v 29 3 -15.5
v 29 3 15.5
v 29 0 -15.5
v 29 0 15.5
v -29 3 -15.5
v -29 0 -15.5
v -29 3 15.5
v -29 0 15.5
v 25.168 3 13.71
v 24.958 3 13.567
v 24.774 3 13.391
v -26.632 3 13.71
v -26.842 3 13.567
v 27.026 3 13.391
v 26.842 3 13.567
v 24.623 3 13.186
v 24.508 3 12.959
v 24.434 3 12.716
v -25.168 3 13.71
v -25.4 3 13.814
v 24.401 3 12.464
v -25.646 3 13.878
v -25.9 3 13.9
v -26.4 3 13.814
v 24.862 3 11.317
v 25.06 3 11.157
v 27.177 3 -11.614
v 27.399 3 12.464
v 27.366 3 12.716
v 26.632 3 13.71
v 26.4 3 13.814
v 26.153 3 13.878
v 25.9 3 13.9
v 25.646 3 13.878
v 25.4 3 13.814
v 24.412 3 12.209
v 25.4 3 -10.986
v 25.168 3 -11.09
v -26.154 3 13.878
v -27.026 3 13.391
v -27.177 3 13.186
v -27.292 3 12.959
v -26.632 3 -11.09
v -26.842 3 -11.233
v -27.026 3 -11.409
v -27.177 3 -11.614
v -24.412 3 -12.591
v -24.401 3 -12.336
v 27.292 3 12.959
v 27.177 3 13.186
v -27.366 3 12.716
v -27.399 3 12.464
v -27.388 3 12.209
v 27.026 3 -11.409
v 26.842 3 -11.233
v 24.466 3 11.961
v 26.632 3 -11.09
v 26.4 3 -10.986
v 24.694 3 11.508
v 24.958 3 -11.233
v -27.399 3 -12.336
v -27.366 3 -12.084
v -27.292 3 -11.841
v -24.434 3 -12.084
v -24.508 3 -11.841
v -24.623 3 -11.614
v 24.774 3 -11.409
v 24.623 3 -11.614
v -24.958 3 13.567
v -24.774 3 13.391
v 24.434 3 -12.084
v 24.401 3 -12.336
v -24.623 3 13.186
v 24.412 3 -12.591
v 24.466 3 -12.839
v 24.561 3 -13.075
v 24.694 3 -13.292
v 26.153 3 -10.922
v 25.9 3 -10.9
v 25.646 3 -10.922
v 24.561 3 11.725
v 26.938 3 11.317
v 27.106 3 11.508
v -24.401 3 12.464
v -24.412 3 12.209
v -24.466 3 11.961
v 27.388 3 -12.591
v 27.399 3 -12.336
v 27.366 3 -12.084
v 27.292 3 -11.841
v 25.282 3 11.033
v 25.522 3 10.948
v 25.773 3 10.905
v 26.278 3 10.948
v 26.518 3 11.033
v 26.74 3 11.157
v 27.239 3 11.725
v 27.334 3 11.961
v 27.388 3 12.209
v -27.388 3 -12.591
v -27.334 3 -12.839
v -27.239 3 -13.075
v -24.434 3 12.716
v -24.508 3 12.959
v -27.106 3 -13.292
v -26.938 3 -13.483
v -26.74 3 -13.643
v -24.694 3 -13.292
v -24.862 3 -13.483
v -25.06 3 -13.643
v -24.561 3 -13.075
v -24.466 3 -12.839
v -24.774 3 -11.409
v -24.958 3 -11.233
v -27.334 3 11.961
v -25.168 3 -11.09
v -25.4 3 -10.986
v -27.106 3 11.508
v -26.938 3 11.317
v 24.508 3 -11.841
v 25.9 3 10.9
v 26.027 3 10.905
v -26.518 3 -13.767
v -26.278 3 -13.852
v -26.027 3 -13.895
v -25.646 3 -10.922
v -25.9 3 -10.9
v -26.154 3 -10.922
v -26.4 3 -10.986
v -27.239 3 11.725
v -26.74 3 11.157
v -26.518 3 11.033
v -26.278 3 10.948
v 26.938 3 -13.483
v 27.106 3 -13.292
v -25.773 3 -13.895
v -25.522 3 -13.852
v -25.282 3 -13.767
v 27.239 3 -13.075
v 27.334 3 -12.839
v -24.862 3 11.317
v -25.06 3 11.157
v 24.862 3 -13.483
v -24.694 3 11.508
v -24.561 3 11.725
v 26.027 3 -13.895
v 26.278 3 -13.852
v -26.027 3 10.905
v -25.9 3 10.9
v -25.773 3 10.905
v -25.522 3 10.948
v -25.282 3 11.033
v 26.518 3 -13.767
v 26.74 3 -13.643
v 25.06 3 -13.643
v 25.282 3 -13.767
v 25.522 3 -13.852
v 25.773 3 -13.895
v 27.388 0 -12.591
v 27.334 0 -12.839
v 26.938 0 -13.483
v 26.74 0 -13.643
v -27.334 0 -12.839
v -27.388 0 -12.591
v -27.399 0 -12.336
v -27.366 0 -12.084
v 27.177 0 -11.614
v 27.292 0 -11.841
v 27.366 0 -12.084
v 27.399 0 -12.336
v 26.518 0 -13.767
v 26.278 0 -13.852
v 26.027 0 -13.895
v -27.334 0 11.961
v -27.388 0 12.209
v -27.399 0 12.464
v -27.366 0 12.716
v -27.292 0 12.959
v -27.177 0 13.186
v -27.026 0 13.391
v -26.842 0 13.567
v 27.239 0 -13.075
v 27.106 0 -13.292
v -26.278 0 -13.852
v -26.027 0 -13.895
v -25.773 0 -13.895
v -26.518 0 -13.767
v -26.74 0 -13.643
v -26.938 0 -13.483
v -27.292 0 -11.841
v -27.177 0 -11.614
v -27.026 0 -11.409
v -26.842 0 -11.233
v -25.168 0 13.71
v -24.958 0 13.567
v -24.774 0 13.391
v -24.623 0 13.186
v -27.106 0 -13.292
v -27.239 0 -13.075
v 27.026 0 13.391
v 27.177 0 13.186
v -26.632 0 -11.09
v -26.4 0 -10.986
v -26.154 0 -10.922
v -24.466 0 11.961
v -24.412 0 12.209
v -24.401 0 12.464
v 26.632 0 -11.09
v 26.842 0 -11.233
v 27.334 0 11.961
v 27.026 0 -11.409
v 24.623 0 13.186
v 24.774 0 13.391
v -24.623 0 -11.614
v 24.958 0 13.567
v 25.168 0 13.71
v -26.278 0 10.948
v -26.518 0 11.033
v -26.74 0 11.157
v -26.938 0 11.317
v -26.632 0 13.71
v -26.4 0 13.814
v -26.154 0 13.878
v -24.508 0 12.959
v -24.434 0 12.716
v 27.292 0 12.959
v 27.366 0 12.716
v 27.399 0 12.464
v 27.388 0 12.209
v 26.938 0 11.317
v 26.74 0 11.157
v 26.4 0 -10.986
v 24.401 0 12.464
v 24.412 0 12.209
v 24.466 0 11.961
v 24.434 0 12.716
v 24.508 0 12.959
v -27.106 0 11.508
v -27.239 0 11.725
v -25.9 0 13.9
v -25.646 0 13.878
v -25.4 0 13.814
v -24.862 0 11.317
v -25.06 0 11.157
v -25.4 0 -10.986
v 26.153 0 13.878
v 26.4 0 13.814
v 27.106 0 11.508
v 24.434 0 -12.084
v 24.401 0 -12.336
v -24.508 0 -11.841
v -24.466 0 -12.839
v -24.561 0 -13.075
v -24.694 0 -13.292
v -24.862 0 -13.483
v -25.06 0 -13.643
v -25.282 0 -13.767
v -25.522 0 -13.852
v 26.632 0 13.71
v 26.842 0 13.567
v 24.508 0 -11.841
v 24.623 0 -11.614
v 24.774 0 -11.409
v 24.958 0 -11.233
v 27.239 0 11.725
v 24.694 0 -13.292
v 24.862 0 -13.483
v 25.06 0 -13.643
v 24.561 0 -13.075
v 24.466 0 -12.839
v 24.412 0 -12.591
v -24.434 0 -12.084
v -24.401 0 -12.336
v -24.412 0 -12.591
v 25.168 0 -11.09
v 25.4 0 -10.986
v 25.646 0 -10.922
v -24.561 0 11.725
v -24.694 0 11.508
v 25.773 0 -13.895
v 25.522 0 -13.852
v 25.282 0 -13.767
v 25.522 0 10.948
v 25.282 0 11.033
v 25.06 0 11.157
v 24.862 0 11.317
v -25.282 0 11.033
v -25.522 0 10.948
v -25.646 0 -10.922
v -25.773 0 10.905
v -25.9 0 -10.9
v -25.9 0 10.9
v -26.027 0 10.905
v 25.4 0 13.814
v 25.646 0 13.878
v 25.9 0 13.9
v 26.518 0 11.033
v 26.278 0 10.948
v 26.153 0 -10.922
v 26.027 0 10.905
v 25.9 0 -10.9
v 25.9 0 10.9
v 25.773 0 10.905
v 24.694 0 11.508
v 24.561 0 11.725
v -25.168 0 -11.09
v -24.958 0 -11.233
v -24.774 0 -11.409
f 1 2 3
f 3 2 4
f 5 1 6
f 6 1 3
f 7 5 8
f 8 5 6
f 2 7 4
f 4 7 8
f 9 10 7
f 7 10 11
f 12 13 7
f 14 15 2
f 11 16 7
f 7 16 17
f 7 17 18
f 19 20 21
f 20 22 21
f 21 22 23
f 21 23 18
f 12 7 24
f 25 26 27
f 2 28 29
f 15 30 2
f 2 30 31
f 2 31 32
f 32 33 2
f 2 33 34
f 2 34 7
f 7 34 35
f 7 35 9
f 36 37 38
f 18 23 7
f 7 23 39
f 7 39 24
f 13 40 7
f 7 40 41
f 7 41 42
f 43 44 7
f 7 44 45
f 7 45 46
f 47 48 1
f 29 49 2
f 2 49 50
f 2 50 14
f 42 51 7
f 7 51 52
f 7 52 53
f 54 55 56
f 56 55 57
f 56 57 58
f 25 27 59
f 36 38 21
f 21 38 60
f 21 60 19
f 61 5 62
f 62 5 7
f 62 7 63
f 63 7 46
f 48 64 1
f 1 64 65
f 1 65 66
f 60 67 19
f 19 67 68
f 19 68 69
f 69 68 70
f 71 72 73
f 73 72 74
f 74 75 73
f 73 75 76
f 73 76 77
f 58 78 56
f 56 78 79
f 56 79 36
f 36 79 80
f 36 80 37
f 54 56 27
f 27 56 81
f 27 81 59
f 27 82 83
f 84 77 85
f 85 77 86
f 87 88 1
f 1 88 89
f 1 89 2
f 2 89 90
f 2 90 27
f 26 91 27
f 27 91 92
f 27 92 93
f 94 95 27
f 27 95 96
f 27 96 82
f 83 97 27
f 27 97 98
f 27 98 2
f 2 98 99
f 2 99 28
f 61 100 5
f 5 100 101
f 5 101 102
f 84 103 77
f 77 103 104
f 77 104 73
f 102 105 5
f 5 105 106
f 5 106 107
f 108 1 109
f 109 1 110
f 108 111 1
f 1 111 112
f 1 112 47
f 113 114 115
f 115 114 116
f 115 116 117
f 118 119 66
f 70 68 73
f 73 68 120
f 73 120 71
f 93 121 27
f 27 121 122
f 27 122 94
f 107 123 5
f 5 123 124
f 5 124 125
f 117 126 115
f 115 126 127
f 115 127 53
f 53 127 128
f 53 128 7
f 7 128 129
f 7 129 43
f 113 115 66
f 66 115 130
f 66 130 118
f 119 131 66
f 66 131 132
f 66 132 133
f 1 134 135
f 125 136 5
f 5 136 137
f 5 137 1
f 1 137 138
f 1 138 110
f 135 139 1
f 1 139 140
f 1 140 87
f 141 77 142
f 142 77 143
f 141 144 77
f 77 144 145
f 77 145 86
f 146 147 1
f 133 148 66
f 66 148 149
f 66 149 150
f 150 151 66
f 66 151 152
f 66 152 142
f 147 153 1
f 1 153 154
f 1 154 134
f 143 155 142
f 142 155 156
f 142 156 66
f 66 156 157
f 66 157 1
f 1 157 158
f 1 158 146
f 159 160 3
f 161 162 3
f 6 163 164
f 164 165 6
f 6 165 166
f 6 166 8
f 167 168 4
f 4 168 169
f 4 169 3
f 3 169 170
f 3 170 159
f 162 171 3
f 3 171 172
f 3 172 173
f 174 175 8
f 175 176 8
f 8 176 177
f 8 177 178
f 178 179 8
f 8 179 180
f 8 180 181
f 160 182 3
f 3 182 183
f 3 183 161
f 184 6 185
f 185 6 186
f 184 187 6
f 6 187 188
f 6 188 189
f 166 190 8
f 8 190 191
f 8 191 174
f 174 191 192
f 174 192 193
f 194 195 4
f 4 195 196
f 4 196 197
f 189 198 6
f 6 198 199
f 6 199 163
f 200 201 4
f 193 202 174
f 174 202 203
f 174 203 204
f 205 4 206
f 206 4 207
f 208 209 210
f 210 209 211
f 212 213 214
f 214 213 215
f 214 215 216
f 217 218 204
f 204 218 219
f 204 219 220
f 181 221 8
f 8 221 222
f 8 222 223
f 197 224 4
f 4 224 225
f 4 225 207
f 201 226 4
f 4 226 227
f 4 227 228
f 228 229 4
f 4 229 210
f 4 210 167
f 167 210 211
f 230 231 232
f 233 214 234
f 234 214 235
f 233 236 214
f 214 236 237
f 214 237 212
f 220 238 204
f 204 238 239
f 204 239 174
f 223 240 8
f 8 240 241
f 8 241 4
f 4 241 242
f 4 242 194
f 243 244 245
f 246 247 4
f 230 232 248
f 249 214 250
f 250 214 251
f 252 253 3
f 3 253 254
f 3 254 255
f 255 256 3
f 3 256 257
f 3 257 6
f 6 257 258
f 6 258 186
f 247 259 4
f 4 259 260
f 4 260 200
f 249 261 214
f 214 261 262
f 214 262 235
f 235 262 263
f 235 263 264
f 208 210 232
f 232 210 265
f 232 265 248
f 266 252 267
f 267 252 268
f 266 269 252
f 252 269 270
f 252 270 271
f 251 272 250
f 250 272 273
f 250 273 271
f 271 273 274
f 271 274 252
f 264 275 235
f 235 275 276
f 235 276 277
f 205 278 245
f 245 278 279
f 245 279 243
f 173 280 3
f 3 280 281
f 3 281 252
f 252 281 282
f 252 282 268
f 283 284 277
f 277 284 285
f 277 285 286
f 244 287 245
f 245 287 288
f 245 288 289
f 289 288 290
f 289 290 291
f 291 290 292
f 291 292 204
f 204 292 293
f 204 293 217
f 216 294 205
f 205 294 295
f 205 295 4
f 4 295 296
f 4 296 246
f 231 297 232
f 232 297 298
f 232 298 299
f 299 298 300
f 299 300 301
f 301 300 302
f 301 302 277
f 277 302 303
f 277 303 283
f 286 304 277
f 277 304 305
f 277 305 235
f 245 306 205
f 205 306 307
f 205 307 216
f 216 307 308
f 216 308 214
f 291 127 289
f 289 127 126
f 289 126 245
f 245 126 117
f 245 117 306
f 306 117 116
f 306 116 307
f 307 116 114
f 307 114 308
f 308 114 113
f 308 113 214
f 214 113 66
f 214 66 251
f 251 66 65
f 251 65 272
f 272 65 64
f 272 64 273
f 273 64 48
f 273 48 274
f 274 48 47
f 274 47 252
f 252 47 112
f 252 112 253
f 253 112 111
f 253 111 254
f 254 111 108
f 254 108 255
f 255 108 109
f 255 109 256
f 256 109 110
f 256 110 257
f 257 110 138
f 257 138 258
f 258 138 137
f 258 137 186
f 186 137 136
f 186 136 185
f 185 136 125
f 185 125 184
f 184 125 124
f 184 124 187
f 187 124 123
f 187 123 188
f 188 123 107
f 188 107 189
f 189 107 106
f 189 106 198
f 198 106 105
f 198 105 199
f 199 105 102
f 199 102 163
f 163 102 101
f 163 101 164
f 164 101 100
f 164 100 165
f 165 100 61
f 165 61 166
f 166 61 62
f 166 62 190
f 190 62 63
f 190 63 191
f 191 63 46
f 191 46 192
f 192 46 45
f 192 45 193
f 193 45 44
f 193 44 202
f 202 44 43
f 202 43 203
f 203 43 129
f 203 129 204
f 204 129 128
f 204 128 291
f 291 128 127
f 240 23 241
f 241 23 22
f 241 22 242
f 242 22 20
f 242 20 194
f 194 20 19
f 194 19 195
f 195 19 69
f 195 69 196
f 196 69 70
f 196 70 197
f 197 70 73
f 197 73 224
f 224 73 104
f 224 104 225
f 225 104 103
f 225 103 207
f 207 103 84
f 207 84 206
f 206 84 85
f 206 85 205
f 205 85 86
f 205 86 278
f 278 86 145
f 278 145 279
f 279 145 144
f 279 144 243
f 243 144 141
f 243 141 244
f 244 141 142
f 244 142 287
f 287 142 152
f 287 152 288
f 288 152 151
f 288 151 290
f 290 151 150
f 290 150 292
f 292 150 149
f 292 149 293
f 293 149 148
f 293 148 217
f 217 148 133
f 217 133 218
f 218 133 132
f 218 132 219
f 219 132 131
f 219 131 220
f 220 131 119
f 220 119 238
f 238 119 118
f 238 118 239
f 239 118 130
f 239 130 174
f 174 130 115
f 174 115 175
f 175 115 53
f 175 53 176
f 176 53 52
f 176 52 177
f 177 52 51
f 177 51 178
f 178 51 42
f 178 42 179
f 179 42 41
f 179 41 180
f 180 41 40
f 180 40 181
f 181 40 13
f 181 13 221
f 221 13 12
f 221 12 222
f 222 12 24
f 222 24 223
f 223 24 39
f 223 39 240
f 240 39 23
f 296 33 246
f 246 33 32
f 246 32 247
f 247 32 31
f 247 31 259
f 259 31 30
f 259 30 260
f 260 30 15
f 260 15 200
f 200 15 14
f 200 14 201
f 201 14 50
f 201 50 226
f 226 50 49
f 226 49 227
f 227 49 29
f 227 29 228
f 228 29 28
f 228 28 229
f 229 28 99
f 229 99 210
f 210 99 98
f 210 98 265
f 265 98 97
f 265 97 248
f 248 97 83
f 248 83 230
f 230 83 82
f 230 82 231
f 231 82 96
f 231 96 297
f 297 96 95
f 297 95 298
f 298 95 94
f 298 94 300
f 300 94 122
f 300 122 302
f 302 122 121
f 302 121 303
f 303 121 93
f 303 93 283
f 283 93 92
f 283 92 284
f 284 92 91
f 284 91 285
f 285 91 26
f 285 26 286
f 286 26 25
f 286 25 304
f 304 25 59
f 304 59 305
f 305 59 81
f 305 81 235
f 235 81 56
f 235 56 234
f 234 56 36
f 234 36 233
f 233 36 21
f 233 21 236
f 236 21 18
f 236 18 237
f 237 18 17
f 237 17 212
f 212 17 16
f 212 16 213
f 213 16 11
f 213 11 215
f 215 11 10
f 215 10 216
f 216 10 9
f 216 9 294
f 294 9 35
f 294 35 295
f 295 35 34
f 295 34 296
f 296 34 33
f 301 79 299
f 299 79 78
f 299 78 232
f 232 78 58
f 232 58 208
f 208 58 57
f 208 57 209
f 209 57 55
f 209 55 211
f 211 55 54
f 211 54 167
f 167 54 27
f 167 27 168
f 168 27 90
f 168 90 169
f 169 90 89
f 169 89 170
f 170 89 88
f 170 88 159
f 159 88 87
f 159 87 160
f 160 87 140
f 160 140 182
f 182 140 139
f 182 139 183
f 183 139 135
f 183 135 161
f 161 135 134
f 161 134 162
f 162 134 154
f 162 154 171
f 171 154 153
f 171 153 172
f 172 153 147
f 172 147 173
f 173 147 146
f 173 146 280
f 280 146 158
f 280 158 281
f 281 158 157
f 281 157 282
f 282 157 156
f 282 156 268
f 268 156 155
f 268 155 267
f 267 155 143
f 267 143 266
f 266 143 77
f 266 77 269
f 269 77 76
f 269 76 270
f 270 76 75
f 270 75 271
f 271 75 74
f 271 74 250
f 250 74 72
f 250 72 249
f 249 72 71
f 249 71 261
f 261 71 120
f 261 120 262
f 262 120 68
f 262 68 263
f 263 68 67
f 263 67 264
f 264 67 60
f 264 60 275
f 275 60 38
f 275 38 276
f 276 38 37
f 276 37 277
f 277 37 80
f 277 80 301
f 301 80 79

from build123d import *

# Parameters (mm, degrees)
SKETCH1_W               = 58
SKETCH1_H               = 31
BOSS_EXTRUDE1_DEPTH     = 3
SKETCH2_R               = 1.5
CUT_EXTRUDE1_DEPTH      = 34.018933962
MIRROR2_COPY_1_SKETCH_R = 1.5
MIRROR2_COPY_1_DEPTH    = 34.018933962


with BuildPart() as part:
    # Sketch1 → Boss-Extrude1 (new body)
    with BuildSketch(Plane(origin=(0, 0, 0), x_dir=(1, 0, 0), z_dir=(0, 1, 0))):
        Rectangle(SKETCH1_W, SKETCH1_H)
    extrude(amount=BOSS_EXTRUDE1_DEPTH)

    # Sketch2 → Cut-Extrude1 (cut, through all)
    with BuildSketch(Plane(origin=(0, 3, 0), x_dir=(1, 0, 0), z_dir=(0, 1, 0))):
        with Locations(Location((-25.9, 12.4, 0), (0, 0, 270))):
            Circle(SKETCH2_R)
    cut_extrude1 = extrude(amount=-CUT_EXTRUDE1_DEPTH, mode=Mode.SUBTRACT)

    # Mirror1: Cut-Extrude1 across plane
    add(cut_extrude1.mirror(Plane.XY), mode=Mode.SUBTRACT)

    # Mirror2: Cut-Extrude1 across plane
    add(cut_extrude1.mirror(Plane(origin=(0, 0, 0), x_dir=(0, 0, 1), z_dir=(1, 0, 0))), mode=Mode.SUBTRACT)

    # Mirror2 copy 1 sketch → Mirror2 copy 1 (cut, through all)
    with BuildSketch(Plane(origin=(0, 3, 0), x_dir=(-1, 0, 0), z_dir=(0, 1, 0))):
        with Locations(Location((-25.9, 12.4, 0), (0, 0, 270))):
            Circle(MIRROR2_COPY_1_SKETCH_R)
    extrude(amount=-MIRROR2_COPY_1_DEPTH, mode=Mode.SUBTRACT)


solid = part.part
